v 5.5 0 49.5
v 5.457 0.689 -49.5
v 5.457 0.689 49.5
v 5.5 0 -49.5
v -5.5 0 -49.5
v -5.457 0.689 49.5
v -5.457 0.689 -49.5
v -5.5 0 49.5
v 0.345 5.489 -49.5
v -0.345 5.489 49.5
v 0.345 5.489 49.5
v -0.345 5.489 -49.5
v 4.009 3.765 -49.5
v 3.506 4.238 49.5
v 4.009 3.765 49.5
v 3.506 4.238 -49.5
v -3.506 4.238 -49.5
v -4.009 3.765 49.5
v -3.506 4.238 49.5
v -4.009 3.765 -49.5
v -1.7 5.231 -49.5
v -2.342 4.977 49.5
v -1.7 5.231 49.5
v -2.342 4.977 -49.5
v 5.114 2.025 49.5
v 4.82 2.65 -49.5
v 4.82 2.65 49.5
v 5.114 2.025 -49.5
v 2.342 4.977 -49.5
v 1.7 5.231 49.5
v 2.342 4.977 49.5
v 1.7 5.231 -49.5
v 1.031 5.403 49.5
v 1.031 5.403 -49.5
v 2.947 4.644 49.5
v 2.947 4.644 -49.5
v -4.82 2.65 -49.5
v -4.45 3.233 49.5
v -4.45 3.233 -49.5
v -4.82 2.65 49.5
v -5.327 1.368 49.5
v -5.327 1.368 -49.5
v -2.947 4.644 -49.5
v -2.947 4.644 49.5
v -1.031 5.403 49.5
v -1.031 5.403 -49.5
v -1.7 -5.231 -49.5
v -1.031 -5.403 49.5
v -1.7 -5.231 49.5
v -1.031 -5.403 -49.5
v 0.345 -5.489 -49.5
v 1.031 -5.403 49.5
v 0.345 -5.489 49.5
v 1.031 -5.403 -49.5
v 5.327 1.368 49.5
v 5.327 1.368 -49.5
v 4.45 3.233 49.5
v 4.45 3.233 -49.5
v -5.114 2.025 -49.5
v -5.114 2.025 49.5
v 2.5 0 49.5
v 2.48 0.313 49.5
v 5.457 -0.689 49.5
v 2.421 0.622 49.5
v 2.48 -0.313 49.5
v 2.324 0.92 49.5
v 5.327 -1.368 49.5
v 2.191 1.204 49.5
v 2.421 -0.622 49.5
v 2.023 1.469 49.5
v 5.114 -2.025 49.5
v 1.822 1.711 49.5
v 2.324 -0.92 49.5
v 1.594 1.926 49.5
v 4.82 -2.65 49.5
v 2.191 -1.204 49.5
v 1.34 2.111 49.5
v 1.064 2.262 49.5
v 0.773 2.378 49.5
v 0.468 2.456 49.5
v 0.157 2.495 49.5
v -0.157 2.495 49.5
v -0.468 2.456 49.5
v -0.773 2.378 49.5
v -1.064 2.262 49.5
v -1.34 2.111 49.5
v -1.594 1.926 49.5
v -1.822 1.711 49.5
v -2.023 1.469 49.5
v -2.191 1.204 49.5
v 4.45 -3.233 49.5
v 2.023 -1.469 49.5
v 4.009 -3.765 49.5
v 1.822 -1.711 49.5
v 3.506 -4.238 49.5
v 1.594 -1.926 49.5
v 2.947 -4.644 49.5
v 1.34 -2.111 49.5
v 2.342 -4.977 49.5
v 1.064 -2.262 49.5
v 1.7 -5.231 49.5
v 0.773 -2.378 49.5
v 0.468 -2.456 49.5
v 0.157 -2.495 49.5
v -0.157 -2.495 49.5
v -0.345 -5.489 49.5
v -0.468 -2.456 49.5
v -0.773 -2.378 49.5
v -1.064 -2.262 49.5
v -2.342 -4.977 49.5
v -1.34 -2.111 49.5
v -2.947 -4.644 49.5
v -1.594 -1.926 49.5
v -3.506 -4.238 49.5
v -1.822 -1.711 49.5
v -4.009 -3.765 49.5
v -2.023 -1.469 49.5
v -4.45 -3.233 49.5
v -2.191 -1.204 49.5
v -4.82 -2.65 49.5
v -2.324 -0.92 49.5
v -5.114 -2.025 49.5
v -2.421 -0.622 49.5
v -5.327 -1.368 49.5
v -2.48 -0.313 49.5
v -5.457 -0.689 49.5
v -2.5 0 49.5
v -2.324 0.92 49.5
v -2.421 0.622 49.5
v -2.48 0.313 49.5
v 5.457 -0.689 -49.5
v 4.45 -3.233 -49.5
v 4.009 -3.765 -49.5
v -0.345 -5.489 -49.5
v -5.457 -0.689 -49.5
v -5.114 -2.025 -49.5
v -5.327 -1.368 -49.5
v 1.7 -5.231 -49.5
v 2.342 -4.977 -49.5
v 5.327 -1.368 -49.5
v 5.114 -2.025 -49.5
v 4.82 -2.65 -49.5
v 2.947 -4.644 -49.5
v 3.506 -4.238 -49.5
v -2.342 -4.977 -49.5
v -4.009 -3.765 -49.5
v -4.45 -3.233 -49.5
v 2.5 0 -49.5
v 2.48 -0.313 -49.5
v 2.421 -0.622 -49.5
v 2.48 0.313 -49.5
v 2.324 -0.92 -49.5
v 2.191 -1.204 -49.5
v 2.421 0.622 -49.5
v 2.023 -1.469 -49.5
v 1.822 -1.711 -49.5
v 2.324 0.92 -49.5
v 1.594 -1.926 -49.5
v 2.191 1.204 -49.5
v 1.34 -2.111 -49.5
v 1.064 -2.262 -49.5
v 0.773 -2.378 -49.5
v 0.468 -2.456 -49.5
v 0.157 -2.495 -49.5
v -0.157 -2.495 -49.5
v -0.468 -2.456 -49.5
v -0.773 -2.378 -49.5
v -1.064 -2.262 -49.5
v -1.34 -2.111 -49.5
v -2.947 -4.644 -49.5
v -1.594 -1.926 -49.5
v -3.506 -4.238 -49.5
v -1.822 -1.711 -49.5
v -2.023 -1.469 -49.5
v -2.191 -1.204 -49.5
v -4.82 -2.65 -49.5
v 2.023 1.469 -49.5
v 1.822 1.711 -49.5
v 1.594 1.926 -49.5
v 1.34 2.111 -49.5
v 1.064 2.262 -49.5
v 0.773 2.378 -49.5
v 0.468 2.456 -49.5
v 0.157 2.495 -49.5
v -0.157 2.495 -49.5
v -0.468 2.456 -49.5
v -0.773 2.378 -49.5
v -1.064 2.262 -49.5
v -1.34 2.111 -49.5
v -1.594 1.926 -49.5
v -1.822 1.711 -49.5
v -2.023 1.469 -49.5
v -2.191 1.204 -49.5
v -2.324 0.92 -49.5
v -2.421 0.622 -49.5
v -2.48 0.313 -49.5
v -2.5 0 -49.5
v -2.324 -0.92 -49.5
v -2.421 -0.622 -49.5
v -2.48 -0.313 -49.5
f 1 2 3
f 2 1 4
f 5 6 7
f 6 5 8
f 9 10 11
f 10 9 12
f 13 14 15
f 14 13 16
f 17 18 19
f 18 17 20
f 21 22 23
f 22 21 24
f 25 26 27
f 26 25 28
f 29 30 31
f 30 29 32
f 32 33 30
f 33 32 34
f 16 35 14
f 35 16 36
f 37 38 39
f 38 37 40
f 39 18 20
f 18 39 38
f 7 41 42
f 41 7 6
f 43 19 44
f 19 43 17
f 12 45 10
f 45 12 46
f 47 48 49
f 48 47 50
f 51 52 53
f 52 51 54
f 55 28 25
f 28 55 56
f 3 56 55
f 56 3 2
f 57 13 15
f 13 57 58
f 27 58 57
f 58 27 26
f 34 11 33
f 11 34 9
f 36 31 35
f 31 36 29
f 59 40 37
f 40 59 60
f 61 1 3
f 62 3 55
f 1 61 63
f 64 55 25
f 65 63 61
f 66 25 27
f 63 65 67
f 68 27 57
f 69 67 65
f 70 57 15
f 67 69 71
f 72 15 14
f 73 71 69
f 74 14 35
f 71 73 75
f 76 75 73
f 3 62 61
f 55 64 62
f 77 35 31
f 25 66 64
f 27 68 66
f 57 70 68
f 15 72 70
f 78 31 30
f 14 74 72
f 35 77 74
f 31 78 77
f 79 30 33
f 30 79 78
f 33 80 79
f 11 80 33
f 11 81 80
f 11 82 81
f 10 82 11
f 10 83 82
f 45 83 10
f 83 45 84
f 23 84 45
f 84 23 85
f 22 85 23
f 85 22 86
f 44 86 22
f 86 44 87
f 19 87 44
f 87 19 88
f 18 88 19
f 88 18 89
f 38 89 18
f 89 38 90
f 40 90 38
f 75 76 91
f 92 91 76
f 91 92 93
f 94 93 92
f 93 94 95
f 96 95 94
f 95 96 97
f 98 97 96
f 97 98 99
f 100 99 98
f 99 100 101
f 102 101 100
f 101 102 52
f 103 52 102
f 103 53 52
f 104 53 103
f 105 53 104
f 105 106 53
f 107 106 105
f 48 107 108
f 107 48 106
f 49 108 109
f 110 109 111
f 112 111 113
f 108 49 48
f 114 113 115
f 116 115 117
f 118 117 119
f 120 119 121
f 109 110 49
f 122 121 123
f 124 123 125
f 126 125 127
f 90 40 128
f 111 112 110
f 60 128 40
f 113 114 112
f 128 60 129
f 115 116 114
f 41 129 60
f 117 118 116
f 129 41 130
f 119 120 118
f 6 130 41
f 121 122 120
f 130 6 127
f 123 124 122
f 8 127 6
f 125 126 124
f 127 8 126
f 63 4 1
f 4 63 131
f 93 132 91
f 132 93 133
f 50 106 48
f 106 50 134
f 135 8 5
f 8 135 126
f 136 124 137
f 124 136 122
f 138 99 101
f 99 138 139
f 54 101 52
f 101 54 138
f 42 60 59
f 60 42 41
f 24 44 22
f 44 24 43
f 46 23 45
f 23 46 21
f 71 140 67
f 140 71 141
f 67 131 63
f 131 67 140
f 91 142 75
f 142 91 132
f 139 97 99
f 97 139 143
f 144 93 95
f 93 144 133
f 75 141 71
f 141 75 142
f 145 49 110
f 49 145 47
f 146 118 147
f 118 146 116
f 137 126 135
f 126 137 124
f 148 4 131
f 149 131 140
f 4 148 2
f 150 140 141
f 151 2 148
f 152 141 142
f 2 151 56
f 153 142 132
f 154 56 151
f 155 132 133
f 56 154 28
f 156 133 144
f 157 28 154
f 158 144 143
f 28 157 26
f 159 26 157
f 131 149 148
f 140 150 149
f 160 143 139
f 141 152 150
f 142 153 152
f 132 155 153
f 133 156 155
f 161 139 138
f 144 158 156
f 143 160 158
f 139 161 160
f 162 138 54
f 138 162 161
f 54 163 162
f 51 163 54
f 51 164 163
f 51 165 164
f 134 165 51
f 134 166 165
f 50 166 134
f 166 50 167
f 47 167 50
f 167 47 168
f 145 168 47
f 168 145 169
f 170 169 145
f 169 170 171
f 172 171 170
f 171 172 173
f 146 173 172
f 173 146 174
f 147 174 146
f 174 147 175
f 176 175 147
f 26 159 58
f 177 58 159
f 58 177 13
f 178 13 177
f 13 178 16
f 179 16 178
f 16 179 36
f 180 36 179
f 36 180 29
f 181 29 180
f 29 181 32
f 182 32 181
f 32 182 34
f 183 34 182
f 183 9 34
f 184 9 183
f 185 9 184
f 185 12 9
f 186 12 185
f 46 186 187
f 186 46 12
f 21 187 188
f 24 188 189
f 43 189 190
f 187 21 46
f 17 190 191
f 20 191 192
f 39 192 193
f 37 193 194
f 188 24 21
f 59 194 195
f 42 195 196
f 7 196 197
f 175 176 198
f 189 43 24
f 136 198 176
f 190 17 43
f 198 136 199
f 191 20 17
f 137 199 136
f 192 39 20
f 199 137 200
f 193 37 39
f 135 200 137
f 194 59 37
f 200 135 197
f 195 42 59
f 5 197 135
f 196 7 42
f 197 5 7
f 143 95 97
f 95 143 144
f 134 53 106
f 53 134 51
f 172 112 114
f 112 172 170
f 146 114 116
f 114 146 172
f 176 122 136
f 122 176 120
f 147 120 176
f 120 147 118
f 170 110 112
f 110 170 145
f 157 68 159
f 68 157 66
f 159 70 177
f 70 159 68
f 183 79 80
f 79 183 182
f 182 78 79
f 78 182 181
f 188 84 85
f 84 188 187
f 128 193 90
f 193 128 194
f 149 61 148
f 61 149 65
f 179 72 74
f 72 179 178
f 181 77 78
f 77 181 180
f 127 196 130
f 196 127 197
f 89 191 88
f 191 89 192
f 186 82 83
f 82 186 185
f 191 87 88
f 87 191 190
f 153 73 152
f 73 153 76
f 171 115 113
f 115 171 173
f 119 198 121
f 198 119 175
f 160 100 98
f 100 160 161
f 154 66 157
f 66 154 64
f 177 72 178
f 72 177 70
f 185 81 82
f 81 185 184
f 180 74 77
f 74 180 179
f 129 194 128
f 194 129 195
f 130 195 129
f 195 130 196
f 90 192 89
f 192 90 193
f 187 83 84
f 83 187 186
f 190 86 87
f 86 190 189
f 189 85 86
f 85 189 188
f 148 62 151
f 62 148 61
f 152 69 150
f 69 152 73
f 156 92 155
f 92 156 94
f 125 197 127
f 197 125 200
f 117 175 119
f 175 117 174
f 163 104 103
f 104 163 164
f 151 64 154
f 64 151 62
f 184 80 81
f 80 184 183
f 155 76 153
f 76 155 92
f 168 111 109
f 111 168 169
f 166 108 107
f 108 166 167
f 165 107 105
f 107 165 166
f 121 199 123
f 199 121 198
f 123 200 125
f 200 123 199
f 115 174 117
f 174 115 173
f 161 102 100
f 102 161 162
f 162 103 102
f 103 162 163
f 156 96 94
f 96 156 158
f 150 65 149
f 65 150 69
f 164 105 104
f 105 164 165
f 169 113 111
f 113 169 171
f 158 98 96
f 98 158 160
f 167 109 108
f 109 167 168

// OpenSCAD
$fn = 50;


difference() {
	union() {
		translate(v = [0, 0, -49.5000000000]) {
			cylinder(h = 99, r = 5.5000000000);
		}
	}
	union() {
		translate(v = [0, 0, -100.0000000000]) {
			cylinder(h = 200, r = 2.5000000000);
		}
	}
}
